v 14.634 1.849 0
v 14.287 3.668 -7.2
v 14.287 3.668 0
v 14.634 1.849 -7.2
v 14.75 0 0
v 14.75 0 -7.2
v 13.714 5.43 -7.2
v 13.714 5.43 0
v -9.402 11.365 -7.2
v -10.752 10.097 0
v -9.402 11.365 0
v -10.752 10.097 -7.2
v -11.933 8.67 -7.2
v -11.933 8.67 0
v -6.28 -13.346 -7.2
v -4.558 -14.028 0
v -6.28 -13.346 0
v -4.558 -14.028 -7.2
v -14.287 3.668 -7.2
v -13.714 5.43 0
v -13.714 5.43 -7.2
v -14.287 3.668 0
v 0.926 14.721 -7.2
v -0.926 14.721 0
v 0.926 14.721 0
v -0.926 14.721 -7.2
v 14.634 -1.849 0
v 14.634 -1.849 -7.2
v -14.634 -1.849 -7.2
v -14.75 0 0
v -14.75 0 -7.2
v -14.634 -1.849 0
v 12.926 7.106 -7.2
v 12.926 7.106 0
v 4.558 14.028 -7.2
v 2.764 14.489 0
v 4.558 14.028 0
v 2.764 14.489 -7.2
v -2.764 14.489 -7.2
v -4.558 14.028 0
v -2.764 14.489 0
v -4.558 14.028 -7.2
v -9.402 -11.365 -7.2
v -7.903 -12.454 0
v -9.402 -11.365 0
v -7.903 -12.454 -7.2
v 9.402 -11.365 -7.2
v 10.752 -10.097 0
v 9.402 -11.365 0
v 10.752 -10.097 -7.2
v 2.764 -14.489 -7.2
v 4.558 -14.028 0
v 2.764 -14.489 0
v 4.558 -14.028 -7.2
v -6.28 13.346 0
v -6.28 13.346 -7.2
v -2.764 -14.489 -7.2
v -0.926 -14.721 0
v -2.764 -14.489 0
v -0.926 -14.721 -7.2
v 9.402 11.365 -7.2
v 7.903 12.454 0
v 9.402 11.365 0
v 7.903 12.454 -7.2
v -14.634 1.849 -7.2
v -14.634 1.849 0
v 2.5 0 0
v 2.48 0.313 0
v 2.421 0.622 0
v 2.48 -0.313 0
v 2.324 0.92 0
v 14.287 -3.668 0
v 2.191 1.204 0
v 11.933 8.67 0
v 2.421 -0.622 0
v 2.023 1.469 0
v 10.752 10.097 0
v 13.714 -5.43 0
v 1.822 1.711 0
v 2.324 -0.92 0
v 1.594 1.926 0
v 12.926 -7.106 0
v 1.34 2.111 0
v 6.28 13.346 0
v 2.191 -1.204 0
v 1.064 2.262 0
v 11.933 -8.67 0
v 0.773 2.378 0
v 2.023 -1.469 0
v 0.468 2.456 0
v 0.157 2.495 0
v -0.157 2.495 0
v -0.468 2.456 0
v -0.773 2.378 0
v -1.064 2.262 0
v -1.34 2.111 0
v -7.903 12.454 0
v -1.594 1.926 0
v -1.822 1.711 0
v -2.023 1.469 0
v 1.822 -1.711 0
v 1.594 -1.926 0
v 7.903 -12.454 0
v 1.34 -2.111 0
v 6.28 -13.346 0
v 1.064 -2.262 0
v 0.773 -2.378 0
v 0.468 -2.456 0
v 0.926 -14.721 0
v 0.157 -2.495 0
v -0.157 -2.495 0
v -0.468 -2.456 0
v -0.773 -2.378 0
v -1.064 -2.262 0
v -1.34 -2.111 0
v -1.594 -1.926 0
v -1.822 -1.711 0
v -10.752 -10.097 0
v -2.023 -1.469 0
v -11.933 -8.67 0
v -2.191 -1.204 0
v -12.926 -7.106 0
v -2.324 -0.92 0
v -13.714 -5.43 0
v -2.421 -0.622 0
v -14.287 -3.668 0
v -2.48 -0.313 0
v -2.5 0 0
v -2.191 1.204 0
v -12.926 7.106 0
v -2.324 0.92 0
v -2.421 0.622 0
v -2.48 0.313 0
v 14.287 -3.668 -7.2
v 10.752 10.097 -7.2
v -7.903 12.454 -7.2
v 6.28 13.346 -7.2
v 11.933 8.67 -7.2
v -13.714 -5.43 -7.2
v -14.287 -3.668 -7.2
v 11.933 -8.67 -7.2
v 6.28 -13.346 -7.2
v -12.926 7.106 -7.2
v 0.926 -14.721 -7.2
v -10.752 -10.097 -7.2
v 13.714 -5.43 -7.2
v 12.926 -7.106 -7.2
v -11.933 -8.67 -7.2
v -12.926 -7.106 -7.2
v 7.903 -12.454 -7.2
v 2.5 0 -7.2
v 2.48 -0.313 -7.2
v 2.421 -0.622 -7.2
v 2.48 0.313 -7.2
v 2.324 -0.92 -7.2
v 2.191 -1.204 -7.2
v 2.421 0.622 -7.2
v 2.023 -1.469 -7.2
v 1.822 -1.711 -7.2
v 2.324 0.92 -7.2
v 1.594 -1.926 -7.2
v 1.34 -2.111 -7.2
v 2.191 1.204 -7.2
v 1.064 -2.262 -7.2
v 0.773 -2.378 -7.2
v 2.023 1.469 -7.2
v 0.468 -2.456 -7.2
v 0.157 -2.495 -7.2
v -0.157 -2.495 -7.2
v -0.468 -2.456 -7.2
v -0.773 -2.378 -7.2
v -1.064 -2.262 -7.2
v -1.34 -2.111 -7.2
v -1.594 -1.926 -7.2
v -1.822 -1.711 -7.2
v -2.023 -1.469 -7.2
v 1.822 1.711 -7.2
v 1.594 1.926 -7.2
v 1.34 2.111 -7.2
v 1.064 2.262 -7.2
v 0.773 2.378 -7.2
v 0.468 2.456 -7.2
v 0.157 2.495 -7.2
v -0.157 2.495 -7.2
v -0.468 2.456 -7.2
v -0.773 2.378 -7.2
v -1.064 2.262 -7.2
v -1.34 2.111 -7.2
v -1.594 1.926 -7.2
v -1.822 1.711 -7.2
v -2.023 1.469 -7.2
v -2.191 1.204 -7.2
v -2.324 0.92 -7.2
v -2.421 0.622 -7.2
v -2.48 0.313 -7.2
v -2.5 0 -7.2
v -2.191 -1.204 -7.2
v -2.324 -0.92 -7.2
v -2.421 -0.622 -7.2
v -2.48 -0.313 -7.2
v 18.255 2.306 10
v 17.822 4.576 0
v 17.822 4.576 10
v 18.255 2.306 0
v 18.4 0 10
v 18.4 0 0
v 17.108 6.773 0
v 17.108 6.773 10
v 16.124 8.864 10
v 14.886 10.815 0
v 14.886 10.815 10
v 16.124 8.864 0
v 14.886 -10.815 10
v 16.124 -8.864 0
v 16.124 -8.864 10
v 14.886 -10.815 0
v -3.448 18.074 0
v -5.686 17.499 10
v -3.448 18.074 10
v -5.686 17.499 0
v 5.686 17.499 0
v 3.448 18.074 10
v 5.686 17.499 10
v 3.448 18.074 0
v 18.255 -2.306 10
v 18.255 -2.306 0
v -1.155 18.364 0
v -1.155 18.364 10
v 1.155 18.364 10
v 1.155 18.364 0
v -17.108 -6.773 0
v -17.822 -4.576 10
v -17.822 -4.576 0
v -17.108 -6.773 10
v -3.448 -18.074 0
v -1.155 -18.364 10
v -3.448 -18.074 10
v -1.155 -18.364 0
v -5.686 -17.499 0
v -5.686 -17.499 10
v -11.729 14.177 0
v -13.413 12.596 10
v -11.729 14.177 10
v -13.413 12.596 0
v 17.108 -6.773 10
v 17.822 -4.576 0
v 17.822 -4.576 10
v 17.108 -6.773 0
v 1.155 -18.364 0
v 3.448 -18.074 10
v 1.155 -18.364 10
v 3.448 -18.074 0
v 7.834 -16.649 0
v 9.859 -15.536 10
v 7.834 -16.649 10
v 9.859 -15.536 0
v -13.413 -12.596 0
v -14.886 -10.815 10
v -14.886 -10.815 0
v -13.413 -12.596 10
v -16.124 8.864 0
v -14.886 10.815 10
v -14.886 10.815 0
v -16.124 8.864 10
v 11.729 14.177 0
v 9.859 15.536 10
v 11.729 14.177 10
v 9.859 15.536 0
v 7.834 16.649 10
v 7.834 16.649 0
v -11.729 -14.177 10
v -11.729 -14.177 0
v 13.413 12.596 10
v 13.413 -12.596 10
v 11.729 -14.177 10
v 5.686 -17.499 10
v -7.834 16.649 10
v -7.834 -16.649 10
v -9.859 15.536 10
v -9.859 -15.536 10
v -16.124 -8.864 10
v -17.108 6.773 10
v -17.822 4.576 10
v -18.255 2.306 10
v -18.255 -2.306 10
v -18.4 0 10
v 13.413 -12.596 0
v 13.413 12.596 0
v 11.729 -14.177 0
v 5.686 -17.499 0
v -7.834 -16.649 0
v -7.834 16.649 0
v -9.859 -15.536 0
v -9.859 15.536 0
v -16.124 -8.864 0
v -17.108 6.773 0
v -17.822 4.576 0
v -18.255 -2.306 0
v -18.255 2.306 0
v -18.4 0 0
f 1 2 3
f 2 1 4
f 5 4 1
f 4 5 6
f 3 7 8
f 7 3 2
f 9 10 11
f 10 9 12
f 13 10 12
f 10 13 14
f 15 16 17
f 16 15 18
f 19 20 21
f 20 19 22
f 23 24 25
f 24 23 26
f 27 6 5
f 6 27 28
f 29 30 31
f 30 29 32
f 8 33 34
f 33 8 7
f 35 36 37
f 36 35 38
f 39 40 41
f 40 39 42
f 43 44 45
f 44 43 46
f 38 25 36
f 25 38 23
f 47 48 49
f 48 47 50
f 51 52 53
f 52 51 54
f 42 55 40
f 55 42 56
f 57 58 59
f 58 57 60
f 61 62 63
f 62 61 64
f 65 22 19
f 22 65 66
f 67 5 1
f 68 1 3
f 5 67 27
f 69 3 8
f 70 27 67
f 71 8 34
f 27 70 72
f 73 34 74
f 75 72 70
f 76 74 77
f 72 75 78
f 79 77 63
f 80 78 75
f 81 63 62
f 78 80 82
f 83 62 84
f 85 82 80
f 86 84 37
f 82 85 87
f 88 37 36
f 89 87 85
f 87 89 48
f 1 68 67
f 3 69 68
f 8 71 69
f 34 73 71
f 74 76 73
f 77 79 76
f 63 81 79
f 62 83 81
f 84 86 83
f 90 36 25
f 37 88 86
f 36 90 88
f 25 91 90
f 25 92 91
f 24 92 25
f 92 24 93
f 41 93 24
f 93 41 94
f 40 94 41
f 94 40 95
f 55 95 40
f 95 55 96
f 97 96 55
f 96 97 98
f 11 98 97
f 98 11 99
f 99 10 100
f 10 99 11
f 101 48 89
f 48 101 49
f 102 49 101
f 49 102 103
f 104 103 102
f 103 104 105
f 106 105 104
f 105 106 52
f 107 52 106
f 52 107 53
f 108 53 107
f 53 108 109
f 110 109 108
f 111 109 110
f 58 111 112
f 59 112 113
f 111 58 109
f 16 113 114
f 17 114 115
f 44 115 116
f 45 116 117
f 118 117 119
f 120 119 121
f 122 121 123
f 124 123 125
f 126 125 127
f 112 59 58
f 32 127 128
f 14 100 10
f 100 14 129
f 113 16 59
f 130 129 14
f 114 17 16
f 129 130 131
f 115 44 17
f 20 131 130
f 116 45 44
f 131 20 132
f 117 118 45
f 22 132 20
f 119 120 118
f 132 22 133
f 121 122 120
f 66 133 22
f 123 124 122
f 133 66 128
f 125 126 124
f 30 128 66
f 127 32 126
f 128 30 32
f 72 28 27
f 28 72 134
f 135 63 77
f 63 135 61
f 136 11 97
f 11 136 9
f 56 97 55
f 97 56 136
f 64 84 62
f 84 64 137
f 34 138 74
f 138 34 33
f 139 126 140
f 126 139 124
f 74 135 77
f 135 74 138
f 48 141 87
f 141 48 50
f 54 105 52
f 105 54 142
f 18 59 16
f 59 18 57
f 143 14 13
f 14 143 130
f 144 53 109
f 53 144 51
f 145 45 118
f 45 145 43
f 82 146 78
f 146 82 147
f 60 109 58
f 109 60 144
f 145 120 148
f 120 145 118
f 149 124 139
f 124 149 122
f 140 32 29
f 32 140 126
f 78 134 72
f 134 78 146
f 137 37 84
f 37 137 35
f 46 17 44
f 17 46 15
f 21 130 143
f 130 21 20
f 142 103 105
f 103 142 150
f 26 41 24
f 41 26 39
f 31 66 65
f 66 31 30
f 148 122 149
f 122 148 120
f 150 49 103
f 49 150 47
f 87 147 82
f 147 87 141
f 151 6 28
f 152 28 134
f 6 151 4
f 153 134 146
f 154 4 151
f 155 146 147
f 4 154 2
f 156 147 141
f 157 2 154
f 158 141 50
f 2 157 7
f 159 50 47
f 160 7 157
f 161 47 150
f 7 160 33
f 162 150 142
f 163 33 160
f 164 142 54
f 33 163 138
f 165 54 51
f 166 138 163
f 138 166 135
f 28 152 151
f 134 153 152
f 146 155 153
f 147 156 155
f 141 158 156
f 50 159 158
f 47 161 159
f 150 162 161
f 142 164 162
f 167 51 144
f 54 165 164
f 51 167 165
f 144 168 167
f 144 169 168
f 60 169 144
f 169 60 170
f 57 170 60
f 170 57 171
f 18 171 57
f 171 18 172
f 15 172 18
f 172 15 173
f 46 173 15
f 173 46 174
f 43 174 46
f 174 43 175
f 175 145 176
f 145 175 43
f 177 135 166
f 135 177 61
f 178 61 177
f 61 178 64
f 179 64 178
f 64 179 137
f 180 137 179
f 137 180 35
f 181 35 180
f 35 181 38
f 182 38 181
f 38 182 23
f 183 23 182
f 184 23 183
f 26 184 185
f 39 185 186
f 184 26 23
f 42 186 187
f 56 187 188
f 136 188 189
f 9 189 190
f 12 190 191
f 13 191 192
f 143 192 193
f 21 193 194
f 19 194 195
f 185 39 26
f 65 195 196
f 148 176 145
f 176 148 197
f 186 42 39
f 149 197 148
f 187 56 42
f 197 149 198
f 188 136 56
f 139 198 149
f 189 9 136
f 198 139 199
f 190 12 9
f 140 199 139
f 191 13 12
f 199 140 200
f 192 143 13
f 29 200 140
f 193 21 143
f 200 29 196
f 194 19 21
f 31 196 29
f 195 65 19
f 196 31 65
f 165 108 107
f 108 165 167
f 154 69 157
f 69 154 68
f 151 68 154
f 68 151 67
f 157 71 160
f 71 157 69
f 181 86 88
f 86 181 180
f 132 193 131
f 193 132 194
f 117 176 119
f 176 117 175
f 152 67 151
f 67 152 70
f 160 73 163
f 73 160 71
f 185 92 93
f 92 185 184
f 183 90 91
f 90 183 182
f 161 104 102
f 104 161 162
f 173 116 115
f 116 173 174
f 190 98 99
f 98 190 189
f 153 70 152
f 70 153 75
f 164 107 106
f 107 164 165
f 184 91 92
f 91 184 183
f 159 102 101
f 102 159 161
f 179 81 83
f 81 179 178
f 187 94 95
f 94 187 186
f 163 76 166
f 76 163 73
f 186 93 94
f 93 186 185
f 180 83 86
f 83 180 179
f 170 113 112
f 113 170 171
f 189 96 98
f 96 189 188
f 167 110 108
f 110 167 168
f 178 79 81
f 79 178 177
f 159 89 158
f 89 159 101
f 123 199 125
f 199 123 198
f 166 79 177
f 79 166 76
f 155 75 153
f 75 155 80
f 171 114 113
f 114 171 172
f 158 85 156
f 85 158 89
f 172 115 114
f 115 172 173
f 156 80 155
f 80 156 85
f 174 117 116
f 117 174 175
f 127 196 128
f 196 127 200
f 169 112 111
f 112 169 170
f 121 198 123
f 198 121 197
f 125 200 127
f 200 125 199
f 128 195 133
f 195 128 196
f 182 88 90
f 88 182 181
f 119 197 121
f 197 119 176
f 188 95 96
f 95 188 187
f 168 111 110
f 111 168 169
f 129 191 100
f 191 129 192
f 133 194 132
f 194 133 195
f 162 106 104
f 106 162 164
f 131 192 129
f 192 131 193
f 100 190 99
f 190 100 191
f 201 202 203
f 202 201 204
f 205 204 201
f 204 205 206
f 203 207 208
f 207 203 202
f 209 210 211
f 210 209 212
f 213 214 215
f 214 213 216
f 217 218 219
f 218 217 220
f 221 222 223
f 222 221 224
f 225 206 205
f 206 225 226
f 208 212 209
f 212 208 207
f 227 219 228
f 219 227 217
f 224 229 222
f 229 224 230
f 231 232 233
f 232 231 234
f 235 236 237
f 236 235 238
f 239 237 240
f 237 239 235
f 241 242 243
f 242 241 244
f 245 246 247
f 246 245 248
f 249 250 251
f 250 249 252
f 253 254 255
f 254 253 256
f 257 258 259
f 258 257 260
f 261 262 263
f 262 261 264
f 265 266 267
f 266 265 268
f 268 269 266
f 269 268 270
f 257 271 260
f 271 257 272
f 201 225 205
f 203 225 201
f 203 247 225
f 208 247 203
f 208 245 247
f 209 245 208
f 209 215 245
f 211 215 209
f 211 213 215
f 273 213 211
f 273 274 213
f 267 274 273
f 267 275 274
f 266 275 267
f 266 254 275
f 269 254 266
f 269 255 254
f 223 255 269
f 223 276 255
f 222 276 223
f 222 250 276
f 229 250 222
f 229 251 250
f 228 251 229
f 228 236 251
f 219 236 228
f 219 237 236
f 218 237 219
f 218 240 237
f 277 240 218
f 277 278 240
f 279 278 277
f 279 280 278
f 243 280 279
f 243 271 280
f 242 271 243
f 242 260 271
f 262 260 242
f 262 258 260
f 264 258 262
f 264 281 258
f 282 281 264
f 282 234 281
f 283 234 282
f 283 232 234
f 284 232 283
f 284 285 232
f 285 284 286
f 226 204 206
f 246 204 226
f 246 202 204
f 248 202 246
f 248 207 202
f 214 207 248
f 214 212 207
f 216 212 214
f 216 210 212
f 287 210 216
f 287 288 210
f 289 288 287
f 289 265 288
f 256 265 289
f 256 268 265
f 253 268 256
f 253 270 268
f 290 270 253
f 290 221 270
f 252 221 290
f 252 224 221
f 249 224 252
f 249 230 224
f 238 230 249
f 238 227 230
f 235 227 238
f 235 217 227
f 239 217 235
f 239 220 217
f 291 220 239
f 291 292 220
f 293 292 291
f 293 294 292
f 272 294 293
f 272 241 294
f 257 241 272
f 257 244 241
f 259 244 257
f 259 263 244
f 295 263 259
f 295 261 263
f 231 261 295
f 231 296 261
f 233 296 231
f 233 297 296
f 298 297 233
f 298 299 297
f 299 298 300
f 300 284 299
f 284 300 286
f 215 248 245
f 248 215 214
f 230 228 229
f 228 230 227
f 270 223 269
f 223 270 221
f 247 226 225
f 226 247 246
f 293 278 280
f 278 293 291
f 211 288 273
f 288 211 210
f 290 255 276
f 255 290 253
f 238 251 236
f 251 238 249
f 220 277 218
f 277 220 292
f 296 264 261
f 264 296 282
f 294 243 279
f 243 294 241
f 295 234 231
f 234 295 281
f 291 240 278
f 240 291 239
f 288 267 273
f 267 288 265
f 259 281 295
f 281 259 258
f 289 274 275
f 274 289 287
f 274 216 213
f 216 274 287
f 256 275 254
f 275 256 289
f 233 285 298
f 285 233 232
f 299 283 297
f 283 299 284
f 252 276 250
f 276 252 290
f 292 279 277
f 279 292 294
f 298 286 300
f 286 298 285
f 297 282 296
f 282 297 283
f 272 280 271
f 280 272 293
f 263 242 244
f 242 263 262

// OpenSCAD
// Ikea sink fix
// Author: Alessandro Paganelli (alessandro.paganelli@gmail.com)

// Measures: in mm

// Constants
$fn = 50;

// cap 
CYLINDER_H = 7.2;
CYLINDER_R = 14.75;

// Initial version: the surface acts as the handler
SURFACE_R = 18.4;
SURFACE_H = 10.0; 

// screw hole
SCREW_HOLE_R = 2.5; // TODO add tolerance

// Modules
module sink_fix()
{
    union()
    {
        // cap
        translate([0.0, 0.0, -CYLINDER_H])
        difference()
        {
            cylinder(h = CYLINDER_H, r = CYLINDER_R);
            cylinder(h = CYLINDER_H, r = SCREW_HOLE_R);
        }
        
        // handler
        cylinder(h = SURFACE_H, r = SURFACE_R);
    }    
}

// Actual script
sink_fix();
